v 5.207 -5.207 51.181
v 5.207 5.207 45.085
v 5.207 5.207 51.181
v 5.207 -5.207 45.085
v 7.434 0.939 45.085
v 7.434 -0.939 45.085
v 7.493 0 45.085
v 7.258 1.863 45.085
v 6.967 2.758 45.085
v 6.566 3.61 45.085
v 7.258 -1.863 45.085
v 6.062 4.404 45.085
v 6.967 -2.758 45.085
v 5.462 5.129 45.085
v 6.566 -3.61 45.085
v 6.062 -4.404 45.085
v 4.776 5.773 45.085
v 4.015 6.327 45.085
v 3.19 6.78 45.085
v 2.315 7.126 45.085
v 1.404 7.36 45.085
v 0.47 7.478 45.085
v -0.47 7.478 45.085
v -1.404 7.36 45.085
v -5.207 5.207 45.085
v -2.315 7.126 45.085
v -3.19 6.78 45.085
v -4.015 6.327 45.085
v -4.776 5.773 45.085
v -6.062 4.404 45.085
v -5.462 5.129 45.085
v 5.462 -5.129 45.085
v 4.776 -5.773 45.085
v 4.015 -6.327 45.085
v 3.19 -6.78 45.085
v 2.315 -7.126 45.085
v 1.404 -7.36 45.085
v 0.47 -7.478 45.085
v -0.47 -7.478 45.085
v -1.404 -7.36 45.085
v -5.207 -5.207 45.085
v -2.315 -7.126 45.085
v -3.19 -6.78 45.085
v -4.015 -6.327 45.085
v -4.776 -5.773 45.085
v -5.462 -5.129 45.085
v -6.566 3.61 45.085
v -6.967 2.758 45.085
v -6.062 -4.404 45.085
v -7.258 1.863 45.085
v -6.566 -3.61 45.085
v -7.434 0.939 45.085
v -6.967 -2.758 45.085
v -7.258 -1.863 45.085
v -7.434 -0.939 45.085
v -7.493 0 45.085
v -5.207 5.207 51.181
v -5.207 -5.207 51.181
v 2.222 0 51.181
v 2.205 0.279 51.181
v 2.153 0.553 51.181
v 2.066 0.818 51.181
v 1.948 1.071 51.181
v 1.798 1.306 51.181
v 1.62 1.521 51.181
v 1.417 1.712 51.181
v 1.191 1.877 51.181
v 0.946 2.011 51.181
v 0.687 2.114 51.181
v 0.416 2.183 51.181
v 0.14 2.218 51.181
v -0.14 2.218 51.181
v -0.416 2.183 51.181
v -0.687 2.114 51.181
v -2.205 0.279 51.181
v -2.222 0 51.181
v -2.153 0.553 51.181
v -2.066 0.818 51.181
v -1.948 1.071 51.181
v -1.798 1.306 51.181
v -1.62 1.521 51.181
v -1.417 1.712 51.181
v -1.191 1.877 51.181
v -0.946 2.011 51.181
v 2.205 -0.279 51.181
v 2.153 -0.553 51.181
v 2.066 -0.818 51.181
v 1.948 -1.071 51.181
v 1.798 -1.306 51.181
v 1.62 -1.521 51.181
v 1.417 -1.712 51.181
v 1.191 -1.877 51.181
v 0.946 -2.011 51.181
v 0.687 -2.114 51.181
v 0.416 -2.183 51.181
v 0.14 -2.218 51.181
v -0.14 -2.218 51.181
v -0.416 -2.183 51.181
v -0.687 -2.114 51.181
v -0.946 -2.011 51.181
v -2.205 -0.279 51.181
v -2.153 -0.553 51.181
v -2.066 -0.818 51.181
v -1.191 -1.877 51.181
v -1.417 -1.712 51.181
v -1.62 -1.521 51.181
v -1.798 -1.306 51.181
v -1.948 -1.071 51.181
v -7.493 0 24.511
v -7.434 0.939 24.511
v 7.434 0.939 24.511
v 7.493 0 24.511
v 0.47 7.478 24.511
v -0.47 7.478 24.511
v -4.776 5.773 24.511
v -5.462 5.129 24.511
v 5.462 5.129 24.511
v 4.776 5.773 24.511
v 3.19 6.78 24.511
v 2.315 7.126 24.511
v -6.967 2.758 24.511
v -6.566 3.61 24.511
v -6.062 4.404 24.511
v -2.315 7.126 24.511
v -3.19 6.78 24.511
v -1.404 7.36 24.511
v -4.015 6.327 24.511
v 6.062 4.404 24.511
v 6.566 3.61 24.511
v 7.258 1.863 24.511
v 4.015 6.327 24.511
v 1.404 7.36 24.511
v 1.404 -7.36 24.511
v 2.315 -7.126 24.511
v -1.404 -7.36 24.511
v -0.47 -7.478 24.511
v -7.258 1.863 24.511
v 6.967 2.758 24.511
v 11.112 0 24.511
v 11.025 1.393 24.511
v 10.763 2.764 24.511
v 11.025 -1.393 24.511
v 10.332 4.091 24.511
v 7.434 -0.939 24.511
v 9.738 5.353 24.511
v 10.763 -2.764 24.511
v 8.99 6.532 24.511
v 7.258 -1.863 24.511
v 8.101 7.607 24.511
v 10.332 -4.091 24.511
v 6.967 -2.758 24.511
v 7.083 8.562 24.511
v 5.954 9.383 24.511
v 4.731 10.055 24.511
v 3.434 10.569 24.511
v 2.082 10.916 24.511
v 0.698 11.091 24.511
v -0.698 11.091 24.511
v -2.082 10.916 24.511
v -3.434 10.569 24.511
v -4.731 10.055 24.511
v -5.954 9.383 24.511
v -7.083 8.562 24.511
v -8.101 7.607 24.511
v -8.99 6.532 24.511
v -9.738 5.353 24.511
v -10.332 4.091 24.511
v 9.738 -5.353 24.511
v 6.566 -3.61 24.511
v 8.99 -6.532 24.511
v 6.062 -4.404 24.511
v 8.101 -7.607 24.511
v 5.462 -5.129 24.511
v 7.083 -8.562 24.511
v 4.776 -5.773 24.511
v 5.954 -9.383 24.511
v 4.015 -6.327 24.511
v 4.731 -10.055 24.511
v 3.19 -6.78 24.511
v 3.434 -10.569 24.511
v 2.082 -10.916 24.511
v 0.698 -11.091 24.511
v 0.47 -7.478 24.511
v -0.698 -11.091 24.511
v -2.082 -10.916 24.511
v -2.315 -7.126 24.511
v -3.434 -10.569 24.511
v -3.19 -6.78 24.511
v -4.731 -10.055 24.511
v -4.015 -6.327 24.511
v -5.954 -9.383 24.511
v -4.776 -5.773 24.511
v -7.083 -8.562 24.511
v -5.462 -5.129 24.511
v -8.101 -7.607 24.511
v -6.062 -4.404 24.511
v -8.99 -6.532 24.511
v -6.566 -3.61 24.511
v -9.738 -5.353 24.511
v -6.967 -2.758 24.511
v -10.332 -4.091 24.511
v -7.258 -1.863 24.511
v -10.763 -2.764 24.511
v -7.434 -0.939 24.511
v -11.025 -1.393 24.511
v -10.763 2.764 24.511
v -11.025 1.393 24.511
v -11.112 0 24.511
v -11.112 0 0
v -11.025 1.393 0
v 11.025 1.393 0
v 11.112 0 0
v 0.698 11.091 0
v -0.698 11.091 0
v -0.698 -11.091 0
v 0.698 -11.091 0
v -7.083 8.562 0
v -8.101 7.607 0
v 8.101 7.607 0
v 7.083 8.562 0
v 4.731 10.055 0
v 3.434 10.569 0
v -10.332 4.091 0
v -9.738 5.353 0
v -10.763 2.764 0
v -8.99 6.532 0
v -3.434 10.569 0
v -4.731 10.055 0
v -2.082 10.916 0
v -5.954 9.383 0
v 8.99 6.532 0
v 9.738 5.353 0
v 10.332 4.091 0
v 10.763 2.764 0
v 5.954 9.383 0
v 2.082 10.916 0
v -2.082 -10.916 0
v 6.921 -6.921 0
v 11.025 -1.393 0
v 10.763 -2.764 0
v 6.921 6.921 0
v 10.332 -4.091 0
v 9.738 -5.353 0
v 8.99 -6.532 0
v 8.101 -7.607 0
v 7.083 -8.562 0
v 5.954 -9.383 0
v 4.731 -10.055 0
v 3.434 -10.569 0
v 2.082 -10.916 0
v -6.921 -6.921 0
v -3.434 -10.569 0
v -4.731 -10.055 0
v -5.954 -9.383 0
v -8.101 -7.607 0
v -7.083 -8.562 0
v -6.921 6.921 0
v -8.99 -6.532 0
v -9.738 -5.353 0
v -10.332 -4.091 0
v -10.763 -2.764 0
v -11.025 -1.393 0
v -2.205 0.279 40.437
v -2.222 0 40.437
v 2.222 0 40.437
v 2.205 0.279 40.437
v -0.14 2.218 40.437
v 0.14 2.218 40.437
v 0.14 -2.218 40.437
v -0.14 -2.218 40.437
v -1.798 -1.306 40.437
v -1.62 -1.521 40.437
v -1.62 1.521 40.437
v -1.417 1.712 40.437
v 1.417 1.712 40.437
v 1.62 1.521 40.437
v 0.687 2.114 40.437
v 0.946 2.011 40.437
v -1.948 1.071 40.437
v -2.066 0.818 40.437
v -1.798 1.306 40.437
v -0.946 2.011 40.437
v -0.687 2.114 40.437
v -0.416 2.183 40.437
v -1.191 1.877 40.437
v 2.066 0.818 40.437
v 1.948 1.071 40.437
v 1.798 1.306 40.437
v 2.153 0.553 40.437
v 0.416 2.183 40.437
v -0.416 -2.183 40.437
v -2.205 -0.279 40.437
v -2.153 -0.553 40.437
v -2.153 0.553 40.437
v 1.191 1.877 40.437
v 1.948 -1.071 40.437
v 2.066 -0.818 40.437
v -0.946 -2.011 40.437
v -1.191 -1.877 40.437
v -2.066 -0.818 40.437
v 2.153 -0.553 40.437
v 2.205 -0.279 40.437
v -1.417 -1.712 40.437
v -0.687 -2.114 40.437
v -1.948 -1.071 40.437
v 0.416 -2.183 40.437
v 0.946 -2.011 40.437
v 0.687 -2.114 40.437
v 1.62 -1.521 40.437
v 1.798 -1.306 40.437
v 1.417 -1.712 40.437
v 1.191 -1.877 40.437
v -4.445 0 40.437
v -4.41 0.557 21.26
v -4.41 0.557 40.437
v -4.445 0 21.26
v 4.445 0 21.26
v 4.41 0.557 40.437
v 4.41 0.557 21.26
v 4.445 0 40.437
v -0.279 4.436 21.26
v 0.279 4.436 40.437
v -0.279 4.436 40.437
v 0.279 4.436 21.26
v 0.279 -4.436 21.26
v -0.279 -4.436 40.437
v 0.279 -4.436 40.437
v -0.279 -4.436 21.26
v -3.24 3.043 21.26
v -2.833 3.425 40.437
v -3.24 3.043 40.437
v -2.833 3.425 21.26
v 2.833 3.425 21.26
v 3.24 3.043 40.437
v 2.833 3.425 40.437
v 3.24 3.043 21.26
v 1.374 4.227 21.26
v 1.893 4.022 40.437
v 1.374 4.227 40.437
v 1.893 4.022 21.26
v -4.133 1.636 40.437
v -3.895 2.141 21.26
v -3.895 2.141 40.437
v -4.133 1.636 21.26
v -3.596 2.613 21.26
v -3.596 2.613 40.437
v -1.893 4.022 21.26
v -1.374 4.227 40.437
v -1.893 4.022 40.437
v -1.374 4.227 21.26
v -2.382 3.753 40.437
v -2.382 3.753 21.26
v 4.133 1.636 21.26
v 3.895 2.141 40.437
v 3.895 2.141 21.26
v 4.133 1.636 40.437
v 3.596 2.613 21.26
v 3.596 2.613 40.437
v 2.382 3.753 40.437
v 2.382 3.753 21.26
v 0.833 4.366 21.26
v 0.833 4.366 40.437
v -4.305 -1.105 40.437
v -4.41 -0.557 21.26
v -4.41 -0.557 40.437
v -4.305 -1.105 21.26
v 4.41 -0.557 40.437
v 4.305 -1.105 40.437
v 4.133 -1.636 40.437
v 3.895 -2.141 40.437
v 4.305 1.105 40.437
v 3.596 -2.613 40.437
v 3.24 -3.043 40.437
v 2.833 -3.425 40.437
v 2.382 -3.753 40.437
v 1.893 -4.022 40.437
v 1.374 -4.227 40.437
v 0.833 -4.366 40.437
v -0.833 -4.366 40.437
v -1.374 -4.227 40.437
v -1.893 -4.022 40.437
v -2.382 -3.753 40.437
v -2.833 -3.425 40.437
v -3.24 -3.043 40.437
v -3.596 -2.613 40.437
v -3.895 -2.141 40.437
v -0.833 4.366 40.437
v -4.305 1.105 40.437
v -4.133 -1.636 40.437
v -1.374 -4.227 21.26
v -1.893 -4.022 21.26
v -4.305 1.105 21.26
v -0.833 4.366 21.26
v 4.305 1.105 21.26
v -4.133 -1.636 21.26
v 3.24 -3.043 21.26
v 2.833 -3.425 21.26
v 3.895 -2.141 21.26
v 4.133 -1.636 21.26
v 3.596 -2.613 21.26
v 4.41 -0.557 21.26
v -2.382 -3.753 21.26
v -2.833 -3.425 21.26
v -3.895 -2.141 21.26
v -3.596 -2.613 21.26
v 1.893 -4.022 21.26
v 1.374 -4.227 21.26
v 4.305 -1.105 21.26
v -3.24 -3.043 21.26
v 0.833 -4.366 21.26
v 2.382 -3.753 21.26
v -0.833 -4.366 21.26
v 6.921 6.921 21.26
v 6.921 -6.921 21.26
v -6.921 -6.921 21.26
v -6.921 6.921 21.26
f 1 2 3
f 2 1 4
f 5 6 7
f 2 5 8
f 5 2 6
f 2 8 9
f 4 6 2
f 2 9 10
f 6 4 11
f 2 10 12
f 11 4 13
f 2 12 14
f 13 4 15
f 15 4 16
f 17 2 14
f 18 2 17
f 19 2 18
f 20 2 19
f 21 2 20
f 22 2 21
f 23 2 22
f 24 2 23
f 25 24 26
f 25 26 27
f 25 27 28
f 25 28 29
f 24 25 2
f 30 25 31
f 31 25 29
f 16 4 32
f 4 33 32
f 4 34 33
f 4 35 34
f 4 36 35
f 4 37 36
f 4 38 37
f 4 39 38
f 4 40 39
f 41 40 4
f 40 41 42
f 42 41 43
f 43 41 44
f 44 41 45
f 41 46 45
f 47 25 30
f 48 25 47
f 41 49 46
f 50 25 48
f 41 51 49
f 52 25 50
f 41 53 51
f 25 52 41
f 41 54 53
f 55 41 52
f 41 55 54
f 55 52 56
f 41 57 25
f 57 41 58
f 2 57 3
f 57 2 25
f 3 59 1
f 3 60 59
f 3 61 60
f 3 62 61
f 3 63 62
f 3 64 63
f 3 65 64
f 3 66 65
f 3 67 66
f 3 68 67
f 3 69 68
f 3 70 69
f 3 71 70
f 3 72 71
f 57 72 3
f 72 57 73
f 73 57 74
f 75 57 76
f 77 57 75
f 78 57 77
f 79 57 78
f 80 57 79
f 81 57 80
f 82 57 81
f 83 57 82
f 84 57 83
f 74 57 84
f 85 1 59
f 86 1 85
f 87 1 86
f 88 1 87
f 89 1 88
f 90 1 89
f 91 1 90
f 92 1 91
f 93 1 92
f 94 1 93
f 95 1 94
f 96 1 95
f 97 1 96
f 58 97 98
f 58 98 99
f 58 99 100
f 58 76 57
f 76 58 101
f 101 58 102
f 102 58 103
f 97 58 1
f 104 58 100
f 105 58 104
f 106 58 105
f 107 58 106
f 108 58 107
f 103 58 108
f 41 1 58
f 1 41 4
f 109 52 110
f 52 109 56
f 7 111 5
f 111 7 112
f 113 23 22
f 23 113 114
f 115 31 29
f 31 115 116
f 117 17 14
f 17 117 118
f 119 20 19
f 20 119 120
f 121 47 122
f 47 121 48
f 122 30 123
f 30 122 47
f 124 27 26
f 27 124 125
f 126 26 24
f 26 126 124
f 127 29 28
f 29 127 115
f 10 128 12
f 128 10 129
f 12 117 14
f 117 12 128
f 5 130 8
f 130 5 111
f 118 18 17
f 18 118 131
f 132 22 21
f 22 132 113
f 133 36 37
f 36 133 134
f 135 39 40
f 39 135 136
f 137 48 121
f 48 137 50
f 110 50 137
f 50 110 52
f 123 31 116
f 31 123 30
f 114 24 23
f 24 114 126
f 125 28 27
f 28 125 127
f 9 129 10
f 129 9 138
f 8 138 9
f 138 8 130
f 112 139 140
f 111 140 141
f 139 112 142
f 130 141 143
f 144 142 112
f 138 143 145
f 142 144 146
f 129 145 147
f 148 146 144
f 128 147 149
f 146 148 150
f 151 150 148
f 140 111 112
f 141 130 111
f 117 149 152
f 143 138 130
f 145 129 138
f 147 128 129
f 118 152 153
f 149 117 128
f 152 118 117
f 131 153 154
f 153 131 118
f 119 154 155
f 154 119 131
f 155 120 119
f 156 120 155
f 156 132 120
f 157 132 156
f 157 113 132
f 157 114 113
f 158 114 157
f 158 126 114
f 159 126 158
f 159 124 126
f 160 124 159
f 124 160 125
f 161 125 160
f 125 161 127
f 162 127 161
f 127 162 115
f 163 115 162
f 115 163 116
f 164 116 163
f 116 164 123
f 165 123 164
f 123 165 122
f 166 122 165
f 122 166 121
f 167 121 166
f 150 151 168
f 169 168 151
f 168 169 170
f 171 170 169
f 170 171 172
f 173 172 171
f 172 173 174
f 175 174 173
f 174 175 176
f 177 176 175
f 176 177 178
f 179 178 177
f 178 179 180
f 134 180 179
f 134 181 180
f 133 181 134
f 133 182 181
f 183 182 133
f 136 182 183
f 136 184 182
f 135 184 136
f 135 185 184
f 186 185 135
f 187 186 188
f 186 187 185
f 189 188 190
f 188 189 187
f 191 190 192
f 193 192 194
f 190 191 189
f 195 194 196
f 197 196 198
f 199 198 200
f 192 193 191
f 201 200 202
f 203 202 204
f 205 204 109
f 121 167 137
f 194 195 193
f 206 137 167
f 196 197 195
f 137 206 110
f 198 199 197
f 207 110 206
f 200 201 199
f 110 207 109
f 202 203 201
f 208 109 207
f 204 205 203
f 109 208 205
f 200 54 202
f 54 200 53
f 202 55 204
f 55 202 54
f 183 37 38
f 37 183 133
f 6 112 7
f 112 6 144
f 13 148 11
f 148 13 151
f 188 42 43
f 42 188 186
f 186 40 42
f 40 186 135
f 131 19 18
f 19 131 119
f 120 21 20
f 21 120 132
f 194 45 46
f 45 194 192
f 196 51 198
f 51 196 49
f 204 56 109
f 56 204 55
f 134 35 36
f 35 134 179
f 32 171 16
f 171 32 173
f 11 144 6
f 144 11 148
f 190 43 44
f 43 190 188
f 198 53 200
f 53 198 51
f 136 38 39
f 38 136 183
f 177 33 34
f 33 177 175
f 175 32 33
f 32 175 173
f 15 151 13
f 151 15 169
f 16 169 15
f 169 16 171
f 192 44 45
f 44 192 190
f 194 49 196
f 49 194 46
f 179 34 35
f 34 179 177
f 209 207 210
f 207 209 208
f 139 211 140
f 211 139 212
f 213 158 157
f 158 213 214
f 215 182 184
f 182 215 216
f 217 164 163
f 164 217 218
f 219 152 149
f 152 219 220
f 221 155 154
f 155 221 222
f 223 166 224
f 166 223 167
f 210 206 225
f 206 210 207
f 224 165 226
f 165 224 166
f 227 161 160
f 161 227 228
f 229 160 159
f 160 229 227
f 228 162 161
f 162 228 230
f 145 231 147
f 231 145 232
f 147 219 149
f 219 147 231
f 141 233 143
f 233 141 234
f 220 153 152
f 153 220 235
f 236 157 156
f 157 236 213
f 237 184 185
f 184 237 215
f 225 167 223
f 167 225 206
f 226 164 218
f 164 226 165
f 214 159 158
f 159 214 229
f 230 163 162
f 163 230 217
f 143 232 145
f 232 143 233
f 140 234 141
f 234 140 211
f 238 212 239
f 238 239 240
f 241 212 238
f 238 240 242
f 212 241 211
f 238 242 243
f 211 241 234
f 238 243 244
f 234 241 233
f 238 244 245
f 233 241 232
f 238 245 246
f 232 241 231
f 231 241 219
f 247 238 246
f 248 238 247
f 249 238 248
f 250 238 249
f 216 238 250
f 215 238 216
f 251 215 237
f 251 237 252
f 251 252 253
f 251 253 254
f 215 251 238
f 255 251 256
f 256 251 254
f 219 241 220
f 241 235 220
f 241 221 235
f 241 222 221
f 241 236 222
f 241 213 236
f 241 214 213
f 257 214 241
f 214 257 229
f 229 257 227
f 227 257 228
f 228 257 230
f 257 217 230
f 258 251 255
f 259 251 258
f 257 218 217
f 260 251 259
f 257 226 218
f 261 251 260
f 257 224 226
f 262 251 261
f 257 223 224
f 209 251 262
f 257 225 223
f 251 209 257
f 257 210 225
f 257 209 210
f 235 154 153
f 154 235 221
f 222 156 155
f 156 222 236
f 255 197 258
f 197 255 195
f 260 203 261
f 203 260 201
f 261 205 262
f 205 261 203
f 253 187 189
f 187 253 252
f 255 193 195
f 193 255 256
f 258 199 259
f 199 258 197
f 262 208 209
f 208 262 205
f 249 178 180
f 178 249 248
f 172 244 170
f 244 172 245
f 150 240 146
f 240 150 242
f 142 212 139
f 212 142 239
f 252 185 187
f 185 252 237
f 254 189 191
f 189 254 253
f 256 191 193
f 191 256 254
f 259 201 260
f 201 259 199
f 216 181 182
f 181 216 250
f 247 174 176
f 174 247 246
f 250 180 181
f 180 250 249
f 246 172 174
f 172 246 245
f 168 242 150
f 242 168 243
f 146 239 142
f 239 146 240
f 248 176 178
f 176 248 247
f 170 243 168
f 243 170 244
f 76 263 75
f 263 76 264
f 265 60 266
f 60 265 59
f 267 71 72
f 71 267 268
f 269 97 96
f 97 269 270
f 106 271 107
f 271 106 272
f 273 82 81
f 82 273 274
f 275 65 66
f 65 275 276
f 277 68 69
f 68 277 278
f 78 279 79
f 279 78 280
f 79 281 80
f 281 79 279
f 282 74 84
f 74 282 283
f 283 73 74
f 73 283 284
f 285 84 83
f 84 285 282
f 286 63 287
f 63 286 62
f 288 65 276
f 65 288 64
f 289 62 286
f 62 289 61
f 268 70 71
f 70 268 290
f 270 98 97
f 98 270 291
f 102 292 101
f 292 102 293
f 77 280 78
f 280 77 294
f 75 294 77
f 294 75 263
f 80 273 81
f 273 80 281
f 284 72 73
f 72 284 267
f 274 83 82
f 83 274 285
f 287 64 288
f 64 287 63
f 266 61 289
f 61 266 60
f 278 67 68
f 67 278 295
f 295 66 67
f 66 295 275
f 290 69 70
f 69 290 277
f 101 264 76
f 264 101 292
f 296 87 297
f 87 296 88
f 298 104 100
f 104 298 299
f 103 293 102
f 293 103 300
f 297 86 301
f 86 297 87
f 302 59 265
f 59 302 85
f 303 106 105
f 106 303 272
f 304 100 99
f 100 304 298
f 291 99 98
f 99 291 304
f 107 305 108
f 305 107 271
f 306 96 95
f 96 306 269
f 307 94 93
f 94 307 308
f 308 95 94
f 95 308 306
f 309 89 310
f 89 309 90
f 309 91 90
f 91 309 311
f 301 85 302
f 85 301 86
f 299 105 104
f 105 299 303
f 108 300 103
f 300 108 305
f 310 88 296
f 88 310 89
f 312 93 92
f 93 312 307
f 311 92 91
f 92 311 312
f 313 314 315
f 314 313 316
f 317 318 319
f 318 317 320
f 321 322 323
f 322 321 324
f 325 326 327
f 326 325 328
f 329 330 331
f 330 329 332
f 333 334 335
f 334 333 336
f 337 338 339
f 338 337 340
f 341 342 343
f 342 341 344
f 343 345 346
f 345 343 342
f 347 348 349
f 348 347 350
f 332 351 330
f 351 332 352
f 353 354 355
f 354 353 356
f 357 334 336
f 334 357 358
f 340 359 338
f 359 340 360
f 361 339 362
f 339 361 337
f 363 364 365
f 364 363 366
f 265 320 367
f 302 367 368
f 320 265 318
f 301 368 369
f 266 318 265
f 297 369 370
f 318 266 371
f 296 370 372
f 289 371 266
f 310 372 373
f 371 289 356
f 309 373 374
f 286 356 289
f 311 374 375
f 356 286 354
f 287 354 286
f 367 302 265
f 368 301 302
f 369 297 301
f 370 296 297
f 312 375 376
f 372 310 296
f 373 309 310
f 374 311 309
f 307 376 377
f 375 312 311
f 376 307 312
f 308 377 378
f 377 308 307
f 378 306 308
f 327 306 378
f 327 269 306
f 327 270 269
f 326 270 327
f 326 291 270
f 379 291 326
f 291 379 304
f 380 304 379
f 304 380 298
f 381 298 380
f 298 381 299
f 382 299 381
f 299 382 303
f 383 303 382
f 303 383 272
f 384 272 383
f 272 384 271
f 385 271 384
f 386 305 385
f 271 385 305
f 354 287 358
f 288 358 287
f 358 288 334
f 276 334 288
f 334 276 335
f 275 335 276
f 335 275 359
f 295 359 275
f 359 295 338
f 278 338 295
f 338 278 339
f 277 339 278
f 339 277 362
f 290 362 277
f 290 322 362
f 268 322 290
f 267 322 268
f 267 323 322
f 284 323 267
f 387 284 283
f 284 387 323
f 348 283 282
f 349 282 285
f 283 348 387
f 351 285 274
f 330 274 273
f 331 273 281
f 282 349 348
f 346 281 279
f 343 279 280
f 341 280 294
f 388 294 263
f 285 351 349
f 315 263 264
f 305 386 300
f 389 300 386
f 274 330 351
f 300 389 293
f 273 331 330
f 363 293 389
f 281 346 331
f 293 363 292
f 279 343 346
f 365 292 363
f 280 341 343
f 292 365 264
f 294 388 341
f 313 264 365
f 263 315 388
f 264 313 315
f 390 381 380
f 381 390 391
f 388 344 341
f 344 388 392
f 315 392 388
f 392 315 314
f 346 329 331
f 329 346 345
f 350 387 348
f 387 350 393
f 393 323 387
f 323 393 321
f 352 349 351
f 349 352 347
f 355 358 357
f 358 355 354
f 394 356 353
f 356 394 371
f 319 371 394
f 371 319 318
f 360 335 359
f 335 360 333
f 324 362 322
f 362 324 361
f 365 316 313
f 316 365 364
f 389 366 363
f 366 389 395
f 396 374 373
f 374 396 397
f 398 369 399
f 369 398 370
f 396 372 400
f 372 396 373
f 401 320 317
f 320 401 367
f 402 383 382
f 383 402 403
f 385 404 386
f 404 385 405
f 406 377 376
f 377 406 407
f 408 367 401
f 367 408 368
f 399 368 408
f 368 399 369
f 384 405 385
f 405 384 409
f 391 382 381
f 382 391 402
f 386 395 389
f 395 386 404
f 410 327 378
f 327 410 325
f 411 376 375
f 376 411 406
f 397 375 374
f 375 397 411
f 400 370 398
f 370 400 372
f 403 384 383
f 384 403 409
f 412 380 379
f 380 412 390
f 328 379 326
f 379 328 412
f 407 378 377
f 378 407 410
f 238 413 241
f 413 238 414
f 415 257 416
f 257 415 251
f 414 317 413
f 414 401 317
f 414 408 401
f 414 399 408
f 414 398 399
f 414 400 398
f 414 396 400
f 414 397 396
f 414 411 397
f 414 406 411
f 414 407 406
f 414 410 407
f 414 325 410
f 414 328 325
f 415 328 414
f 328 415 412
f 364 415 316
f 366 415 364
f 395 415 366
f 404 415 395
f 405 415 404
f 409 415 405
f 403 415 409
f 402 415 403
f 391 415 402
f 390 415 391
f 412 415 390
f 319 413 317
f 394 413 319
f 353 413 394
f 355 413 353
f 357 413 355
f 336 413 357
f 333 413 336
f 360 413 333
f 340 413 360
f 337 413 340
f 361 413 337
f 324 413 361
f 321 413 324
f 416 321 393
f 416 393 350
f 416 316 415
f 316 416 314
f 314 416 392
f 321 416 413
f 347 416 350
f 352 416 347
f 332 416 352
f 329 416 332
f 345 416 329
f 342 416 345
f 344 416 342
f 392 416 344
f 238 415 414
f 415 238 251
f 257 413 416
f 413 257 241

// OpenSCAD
// Replacement plastic insert / coupler for Kohler(R) Rite-Temp(R) shower trim kit (faucet handle).
// The author of this file is not affiliated with Kohler(R), all trademarks are the property of their respective owners and used nominatively.

// This is a small plastic bit that couples the shower handle to a square peg (key) on the actual valve in the wall. On my said unit, this coupler broke (corners cracked) at just over a year old (note the warranty period is 1 year).

// Dimensions below are for the  K-TS22028-4-BN and other K-TS22028-4 , but it appears a similar part is used in other handles with minor variation in e.g. lengths. Hopefully, the below is generic enough to accomodate those variations.

// The coupler has two ends that press-fit onto mating features on the faucet or wall valve respectively, which I'll call the "faucet key" side and "wall key" side. None of the features on this part have official names, so here is an exquisite ASCII art diagram of a sample part to assist entering the needed dimensions.

// In the diagram and parameters, the part is oriented sideways as shown with the 'faucet key' side to the left. (The finished part may be generated in a more print-friendly orientation.) There is normally a rubber O-ring butted up against the lefthand edge of the 'wall key' part (shown by n/u on the diagram), be sure not to lose this - transfer it from the old part.

// Parameters for this model are organized first by critical lengths, followed by outer dimensions, follwed by inner dimensions. 

// Faucet key side                Wall key side
//
//                  n||-----------------|
//       |-----------||-----------------|
//  /----      |-----||
//  |==========
//  \----      |-----||
//       |-----------||-----------------|
//                  u||-----------------|
//
//  0    A     B     CD                 E

// Lengths (A-E)
// There are five critical length values that may vary between Kohler stems, the below is organized by them.
// based on absolute distance from "0" at the face that pushes into the faucet handle.
// In other words, A is the distance from 0 to A, B is the distance from 0 to B, etc.
// If you prefer to use measurements of each section separately, you can define variables in terms of previous ones.


inch = 25.4; // inch to mm conversion - not a political statement; my calipers are imperial

// From '0' edge of square faucet key
A = .240 * inch; // Distance to end of faucet key
C = A+(.810*inch); // Distance to near edge of 'wall CD'
D = C+(.128*inch); // Distance to far edge of 'wall CD' (beginning of the wall key)
B = D-(.755*inch) ; // Distance to face of screw countersink

E = C+(.965 * inch); // Total length to outer edge of wall key

// Outer dimensions (F-H)

// Faucet key side                Wall key side
//                       |
//         |             v
//    |    v        n||-----------------|
//    v  |-----------||-----------------|
//  /----      |-----||
//  |==========
//  \----      |-----||
//    ^  |-----------||-----------------|
//    |    ^        u||-----------------|
//    |    |             ^
//    |    |             |
//    F    G             H

F = .410 * inch; // Width (face-to-face) of square faucet key
G = .590 * inch; // Diameter of cylinder F
H = .875 * inch; // Diameter of wall key outer cylinder

// Note, wall key G's outer dimension is not critical, in my unit the outermost feature of the part is .875", but
// the actual clearance is more like 1.15". Feel free to oversize this a bit for some extra strength.
// In the OEM part the outer walls of the wall key are a rounded-square with thin corners, roughly tracking
// the shape of the square inner key aperture. Maybe an injection molding consideration, maybe an intentional weak point so it crumbles here just out of warranty?... >:O
// Here it is approximated by a plain cylinder since we in 3d printing land are free of either said pressure.

// Finally, inner ("cutout") dimensions (I-K)

// Faucet key side                Wall key side
//
//                  n||-----------------|
//       |-----------||-----------------|
//  /----      |-----||
//  |=====(I)==  (J)     (K)
//  \----      |-----||
//       |-----------||-----------------|
//                  u||-----------------|
//

I = .175 * inch; // ID of screw hole H
J = .350 * inch; // ID of screw countersink I
K = .545 * inch; // Interior width (face-to-face) of square wall key receptacle. Assuming the original is broken, you can just measure the wall key itself and oversize it a smidge.

fudge = 0.001; // Fudge factor for faces that exactly touch, to avoid leaving 0-thickness skins in between during e.g. difference operations
$fn=50; // Number of segments to approximate circular objects with

// Output the model upside-down so any needed supports are inserted in the less-dimensionally-needy insides.
// In particular, don't want support junk clinging to the O-ring mating face.
translate([0, 0, E])
{
    rotate([0,-180,0])
    {
        difference()
        {
            solids();
            cutouts();
        }

    }
}

module solids()
{
    // Faucet key
    translate([0,0,A/2])
    {
        cube([F, F, A], center=true);
    }
    // Center spacer
    sh = C-A ; // Spacer cylinder actual height
    translate([0,0,A+(sh/2)])
    {
        cylinder(h=sh, d=G, center=true);
    }
    // Wall key 
    // Total height of wall key cylinder, including wall thickness
    kh = E - C;
    translate([0, 0, C + (kh/2)])
    {
        cylinder(h=kh, d=H, center=true);
    }
}

module cutouts()
{
    // Screw hole (I)
    translate([0, 0, E/2])
    {
        cylinder(h=E+fudge, d=I, center=true);
    }
    // Scew countersink
    csink_len = E-B; // length of countersink to end
    translate([0, 0, B + (csink_len/2)])
    {
        cylinder(h=csink_len, d=J, center=true);
    }
    // Wall key receptacle
    wallkey_len = E-D; // length of countersink to end
    translate([0, 0, D + (wallkey_len/2)])
    {
        cube([K, K, wallkey_len+fudge], center=true);
    }
}
